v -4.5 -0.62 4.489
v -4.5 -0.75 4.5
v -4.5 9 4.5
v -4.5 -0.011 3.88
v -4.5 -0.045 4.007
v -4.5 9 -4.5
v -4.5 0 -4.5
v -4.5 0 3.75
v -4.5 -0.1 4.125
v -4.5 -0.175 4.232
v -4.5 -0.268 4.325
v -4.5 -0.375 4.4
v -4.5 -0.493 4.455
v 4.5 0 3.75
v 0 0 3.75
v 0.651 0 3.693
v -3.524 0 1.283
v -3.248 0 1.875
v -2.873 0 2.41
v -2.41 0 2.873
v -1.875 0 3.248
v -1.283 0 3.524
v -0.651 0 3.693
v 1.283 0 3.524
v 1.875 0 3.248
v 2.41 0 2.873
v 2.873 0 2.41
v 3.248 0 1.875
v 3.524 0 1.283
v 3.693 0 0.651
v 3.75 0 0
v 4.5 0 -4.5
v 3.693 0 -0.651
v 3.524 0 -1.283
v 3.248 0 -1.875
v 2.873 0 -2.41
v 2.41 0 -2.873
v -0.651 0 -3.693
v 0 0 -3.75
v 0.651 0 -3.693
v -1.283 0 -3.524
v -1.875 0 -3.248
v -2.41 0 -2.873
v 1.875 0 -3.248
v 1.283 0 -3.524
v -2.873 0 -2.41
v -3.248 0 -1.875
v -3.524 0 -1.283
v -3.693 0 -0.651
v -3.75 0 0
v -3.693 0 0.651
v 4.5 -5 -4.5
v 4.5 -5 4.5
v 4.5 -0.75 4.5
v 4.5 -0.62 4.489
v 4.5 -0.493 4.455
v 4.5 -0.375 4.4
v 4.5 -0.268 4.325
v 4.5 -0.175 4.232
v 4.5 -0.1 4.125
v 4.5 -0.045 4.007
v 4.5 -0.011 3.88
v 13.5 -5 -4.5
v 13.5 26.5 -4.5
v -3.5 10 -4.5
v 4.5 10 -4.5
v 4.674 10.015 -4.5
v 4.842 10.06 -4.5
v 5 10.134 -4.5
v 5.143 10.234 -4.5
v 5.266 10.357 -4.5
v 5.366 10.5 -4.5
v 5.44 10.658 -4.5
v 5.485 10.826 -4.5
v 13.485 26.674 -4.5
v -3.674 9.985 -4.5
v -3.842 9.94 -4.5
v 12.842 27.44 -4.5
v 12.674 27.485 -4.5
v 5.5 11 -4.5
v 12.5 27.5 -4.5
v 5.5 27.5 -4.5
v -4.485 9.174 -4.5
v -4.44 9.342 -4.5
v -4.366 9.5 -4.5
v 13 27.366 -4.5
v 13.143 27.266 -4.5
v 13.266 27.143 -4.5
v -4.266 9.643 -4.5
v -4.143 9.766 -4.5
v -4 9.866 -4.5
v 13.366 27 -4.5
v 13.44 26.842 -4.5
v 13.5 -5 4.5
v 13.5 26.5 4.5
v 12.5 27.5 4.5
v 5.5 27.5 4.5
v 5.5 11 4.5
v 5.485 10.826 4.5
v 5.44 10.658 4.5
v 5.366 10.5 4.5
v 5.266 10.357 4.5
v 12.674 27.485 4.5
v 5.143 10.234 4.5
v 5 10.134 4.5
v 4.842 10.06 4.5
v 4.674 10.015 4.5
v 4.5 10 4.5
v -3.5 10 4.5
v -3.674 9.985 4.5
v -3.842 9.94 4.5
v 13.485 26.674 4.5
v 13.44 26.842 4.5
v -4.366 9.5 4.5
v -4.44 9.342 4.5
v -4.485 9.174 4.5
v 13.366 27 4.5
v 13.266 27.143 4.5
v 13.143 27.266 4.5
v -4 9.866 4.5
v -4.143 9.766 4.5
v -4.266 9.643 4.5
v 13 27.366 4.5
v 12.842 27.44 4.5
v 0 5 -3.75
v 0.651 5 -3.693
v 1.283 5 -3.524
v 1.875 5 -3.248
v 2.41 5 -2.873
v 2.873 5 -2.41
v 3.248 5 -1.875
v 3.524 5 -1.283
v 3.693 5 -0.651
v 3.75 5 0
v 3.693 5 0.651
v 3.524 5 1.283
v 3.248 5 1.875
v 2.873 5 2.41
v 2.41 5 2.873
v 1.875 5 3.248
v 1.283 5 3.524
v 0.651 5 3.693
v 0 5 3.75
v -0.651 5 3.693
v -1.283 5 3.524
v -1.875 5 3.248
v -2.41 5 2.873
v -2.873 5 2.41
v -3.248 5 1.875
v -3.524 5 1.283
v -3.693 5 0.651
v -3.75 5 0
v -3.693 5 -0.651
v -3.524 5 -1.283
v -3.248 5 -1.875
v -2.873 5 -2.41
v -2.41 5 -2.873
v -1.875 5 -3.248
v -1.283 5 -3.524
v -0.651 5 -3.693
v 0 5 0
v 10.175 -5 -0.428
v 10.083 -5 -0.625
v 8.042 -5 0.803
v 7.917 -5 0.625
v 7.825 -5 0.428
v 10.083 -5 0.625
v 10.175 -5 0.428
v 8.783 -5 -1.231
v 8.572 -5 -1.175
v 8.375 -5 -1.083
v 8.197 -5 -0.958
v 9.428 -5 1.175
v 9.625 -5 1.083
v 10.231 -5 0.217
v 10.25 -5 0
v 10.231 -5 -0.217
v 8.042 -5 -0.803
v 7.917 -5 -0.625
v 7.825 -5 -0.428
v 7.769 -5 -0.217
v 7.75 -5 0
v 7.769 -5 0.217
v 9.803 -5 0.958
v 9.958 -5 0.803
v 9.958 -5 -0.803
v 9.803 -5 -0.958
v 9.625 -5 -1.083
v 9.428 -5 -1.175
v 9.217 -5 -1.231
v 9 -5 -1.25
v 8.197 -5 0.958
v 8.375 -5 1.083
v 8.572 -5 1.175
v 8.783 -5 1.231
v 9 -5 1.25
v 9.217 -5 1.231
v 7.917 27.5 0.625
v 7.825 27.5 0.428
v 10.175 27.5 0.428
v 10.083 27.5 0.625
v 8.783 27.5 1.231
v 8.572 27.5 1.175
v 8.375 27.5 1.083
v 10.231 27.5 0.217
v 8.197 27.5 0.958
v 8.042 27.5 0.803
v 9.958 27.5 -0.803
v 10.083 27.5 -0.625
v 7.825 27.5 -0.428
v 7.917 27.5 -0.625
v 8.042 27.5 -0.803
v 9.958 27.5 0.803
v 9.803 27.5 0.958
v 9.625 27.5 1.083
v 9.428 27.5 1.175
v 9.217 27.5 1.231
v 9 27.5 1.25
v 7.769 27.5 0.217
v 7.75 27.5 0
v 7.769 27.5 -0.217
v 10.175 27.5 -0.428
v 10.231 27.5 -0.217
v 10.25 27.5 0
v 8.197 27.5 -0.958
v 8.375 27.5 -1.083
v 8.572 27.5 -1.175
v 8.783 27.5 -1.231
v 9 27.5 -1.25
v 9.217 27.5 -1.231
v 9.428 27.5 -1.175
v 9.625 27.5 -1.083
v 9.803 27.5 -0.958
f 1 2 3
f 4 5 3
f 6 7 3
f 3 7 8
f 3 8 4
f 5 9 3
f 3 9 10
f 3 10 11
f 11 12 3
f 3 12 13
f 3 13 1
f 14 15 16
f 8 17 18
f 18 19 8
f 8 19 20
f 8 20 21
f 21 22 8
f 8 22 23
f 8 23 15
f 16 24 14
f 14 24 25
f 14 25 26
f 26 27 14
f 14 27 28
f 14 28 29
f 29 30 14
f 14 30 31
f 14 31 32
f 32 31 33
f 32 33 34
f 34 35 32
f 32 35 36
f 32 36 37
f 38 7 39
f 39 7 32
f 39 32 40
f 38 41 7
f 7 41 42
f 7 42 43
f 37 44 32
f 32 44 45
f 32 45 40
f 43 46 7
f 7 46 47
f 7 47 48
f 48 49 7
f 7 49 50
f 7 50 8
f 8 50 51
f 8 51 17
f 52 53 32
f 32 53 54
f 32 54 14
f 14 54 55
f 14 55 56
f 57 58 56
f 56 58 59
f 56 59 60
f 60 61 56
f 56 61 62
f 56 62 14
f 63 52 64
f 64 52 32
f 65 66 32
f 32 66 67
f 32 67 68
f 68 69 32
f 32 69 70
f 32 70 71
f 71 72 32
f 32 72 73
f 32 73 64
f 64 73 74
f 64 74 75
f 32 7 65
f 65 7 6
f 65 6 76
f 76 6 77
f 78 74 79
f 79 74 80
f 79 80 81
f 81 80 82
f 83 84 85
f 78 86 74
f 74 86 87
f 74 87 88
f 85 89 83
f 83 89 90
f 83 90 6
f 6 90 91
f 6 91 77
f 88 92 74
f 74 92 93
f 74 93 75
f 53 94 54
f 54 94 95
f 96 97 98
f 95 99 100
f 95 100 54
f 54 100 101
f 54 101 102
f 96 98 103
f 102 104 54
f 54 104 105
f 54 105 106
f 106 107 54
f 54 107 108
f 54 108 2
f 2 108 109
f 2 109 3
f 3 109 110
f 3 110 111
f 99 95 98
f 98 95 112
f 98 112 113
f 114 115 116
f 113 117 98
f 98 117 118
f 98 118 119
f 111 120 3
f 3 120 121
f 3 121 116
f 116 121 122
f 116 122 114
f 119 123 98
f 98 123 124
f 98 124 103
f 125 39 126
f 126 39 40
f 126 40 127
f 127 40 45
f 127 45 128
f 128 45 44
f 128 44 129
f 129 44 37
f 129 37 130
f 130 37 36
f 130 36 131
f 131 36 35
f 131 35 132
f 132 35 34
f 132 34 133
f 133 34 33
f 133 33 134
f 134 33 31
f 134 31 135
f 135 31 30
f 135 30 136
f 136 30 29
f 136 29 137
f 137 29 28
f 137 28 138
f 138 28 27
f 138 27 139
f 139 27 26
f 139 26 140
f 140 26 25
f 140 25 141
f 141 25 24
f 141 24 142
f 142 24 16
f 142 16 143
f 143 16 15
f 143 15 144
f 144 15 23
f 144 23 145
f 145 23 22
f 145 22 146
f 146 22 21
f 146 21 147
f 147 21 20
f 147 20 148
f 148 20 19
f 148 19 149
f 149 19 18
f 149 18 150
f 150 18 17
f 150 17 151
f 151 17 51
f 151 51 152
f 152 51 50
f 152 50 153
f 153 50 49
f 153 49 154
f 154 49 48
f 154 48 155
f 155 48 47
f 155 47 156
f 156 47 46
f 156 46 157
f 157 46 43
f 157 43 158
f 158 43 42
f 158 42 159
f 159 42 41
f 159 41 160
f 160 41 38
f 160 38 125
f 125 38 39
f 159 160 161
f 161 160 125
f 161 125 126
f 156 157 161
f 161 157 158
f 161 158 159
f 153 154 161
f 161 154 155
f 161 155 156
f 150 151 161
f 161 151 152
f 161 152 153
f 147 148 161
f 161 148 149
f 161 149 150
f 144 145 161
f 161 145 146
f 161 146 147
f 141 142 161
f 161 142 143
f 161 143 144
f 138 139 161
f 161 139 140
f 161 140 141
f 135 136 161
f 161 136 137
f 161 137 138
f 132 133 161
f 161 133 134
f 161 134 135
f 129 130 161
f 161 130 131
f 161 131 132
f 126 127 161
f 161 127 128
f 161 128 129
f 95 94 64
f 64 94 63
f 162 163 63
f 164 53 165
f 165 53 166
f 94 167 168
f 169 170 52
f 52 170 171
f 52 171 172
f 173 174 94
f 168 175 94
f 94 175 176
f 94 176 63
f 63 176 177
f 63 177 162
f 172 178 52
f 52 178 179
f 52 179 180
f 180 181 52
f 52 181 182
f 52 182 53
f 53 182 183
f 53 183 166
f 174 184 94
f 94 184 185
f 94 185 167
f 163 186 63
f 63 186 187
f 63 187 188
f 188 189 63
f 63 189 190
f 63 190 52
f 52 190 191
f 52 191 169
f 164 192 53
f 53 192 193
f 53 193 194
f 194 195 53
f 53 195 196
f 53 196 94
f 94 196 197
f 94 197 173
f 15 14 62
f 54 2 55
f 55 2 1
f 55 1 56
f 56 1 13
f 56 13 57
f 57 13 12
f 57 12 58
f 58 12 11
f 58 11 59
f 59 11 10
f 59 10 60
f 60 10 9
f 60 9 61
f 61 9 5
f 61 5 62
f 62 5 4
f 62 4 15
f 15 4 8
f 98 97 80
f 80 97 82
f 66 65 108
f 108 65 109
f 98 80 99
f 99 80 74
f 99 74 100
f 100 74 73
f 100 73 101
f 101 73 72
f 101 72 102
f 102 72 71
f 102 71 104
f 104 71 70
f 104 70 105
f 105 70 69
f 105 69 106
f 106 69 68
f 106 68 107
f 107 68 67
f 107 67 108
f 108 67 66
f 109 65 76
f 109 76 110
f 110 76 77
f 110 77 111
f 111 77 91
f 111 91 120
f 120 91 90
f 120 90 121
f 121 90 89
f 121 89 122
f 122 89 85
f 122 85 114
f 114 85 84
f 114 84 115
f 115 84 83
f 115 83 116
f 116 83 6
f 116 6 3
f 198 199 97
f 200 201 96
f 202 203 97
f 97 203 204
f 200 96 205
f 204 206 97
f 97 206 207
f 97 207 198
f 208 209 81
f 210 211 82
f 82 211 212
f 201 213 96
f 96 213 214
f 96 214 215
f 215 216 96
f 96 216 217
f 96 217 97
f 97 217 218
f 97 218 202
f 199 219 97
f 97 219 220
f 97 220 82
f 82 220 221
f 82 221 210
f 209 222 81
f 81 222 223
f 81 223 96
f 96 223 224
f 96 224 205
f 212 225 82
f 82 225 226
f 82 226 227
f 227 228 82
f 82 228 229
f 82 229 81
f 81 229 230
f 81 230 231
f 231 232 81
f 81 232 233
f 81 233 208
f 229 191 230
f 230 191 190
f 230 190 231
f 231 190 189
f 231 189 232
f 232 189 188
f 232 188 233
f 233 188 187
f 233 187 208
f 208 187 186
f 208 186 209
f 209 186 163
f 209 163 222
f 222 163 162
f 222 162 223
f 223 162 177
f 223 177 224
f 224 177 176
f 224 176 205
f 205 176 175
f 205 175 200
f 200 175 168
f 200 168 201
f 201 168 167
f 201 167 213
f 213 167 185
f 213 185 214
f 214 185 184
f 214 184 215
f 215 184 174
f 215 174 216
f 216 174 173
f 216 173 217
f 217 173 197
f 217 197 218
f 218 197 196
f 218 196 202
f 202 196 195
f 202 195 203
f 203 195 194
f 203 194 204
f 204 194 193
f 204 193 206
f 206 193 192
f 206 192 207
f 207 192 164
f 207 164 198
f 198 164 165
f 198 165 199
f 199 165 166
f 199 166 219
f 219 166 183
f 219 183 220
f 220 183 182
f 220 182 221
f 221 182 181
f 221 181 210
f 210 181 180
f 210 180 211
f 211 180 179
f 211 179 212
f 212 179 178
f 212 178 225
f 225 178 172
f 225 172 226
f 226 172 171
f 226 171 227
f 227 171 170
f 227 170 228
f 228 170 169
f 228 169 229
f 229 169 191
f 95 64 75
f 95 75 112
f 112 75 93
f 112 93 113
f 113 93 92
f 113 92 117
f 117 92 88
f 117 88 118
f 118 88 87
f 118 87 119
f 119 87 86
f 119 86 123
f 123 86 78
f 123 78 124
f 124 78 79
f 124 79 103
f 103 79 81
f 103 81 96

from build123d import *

# Parameters (mm, degrees)
SKETCH1_W           = 9
SKETCH1_H           = 9
BOSS_EXTRUDE1_DEPTH = 15
SKETCH2_R           = 3.75
CUT_EXTRUDE1_DEPTH  = 5
SKETCH3_W           = 9
SKETCH3_H           = 9
BOSS_EXTRUDE2_DEPTH = 20
BOSS_EXTRUDE3_REACH = 25.859
SKETCH6_W           = 10
SKETCH6_H           = 9
CUT_EXTRUDE3_DEPTH  = 5
FILLET2_R           = 1
SKETCH7_W           = 8
SKETCH7_H           = 9
BOSS_EXTRUDE4_DEPTH = 12.5
SKETCH4_R           = 1.25
CUT_EXTRUDE2_DEPTH  = 36.478866949
FILLET3_R           = 1


with BuildPart() as part:
    # Sketch1 → Boss-Extrude1 (new body)
    with BuildSketch(Plane(origin=(0, 0, 0), x_dir=(1, 0, 0), z_dir=(0, 1, 0))):
        Rectangle(SKETCH1_W, SKETCH1_H)
    extrude(amount=BOSS_EXTRUDE1_DEPTH)

    # Sketch2 → Cut-Extrude1 (cut)
    with BuildSketch(Plane.XZ):
        with Locations(Location((0, 0, 0), (0, 0, 270))):
            Circle(SKETCH2_R)
    extrude(amount=-CUT_EXTRUDE1_DEPTH, mode=Mode.SUBTRACT)

    # Sketch3 → Boss-Extrude2 (add)
    with BuildSketch(Plane(origin=(0, 15, 0), x_dir=(1, 0, 0), z_dir=(0, 1, 0))):
        with Locations((9, 0)):
            Rectangle(SKETCH3_W, SKETCH3_H)
    extrude(amount=-BOSS_EXTRUDE2_DEPTH)

    # Boss-Extrude3: up to this face of the body (flat: up to its plane)
    boss_extrude3_end = Plane(part.part.faces().sort_by_distance((4.5, -2.5, 0))[0])
    # Sketch5 → Boss-Extrude3 (add, up to the picked face)
    with BuildSketch(Plane.ZY.offset(4.5), mode=Mode.PRIVATE) as boss_extrude3_sk1:
        with BuildLine():
            Line((4.5, -0.75), (4.5, 0))
            Line((4.5, 0), (3.75, 0))
            ThreePointArc((3.75, 0), (4.280330086, -0.219669914), (4.5, -0.75))
        make_face()
    boss_extrude3_tool1 = split(extrude(boss_extrude3_sk1.sketch, amount=-BOSS_EXTRUDE3_REACH, mode=Mode.PRIVATE), bisect_by=boss_extrude3_end, keep=Keep.BOTH, mode=Mode.PRIVATE)
    add(boss_extrude3_tool1.solids().sort_by(Axis((-4.5, -0.167526, 4.332474), (1, 0, 0)))[0])

    # Sketch6 → Cut-Extrude3 (cut)
    with BuildSketch(Plane(origin=(0, 15, 0), x_dir=(1, 0, 0), z_dir=(0, 1, 0))):
        with Locations((0.5, 0)):
            Rectangle(SKETCH6_W, SKETCH6_H)
    extrude(amount=-CUT_EXTRUDE3_DEPTH, mode=Mode.SUBTRACT)

    # Fillet2
    fillet2_edges = [part.edges().sort_by_distance(p)[0] for p in [
        (-4.5, 10, 0),
        (5.5, 10, 0),
    ]]
    fillet(fillet2_edges, radius=FILLET2_R)

    # Sketch7 → Boss-Extrude4 (add)
    with BuildSketch(Plane(origin=(0, 15, 0), x_dir=(1, 0, 0), z_dir=(0, 1, 0))):
        with Locations((9.5, 0)):
            Rectangle(SKETCH7_W, SKETCH7_H)
    extrude(amount=BOSS_EXTRUDE4_DEPTH)

    # Sketch4 → Cut-Extrude2 (cut, through all)
    with BuildSketch(Plane.XZ.offset(5)):
        with Locations(Location((9, 0, 0), (0, 0, 270))):
            Circle(SKETCH4_R)
    extrude(amount=-CUT_EXTRUDE2_DEPTH, mode=Mode.SUBTRACT)

    # Fillet3
    fillet3_edges = [part.edges().sort_by_distance(p)[0] for p in [
        (13.5, 27.5, 0),
    ]]
    fillet(fillet3_edges, radius=FILLET3_R)


solid = part.part
